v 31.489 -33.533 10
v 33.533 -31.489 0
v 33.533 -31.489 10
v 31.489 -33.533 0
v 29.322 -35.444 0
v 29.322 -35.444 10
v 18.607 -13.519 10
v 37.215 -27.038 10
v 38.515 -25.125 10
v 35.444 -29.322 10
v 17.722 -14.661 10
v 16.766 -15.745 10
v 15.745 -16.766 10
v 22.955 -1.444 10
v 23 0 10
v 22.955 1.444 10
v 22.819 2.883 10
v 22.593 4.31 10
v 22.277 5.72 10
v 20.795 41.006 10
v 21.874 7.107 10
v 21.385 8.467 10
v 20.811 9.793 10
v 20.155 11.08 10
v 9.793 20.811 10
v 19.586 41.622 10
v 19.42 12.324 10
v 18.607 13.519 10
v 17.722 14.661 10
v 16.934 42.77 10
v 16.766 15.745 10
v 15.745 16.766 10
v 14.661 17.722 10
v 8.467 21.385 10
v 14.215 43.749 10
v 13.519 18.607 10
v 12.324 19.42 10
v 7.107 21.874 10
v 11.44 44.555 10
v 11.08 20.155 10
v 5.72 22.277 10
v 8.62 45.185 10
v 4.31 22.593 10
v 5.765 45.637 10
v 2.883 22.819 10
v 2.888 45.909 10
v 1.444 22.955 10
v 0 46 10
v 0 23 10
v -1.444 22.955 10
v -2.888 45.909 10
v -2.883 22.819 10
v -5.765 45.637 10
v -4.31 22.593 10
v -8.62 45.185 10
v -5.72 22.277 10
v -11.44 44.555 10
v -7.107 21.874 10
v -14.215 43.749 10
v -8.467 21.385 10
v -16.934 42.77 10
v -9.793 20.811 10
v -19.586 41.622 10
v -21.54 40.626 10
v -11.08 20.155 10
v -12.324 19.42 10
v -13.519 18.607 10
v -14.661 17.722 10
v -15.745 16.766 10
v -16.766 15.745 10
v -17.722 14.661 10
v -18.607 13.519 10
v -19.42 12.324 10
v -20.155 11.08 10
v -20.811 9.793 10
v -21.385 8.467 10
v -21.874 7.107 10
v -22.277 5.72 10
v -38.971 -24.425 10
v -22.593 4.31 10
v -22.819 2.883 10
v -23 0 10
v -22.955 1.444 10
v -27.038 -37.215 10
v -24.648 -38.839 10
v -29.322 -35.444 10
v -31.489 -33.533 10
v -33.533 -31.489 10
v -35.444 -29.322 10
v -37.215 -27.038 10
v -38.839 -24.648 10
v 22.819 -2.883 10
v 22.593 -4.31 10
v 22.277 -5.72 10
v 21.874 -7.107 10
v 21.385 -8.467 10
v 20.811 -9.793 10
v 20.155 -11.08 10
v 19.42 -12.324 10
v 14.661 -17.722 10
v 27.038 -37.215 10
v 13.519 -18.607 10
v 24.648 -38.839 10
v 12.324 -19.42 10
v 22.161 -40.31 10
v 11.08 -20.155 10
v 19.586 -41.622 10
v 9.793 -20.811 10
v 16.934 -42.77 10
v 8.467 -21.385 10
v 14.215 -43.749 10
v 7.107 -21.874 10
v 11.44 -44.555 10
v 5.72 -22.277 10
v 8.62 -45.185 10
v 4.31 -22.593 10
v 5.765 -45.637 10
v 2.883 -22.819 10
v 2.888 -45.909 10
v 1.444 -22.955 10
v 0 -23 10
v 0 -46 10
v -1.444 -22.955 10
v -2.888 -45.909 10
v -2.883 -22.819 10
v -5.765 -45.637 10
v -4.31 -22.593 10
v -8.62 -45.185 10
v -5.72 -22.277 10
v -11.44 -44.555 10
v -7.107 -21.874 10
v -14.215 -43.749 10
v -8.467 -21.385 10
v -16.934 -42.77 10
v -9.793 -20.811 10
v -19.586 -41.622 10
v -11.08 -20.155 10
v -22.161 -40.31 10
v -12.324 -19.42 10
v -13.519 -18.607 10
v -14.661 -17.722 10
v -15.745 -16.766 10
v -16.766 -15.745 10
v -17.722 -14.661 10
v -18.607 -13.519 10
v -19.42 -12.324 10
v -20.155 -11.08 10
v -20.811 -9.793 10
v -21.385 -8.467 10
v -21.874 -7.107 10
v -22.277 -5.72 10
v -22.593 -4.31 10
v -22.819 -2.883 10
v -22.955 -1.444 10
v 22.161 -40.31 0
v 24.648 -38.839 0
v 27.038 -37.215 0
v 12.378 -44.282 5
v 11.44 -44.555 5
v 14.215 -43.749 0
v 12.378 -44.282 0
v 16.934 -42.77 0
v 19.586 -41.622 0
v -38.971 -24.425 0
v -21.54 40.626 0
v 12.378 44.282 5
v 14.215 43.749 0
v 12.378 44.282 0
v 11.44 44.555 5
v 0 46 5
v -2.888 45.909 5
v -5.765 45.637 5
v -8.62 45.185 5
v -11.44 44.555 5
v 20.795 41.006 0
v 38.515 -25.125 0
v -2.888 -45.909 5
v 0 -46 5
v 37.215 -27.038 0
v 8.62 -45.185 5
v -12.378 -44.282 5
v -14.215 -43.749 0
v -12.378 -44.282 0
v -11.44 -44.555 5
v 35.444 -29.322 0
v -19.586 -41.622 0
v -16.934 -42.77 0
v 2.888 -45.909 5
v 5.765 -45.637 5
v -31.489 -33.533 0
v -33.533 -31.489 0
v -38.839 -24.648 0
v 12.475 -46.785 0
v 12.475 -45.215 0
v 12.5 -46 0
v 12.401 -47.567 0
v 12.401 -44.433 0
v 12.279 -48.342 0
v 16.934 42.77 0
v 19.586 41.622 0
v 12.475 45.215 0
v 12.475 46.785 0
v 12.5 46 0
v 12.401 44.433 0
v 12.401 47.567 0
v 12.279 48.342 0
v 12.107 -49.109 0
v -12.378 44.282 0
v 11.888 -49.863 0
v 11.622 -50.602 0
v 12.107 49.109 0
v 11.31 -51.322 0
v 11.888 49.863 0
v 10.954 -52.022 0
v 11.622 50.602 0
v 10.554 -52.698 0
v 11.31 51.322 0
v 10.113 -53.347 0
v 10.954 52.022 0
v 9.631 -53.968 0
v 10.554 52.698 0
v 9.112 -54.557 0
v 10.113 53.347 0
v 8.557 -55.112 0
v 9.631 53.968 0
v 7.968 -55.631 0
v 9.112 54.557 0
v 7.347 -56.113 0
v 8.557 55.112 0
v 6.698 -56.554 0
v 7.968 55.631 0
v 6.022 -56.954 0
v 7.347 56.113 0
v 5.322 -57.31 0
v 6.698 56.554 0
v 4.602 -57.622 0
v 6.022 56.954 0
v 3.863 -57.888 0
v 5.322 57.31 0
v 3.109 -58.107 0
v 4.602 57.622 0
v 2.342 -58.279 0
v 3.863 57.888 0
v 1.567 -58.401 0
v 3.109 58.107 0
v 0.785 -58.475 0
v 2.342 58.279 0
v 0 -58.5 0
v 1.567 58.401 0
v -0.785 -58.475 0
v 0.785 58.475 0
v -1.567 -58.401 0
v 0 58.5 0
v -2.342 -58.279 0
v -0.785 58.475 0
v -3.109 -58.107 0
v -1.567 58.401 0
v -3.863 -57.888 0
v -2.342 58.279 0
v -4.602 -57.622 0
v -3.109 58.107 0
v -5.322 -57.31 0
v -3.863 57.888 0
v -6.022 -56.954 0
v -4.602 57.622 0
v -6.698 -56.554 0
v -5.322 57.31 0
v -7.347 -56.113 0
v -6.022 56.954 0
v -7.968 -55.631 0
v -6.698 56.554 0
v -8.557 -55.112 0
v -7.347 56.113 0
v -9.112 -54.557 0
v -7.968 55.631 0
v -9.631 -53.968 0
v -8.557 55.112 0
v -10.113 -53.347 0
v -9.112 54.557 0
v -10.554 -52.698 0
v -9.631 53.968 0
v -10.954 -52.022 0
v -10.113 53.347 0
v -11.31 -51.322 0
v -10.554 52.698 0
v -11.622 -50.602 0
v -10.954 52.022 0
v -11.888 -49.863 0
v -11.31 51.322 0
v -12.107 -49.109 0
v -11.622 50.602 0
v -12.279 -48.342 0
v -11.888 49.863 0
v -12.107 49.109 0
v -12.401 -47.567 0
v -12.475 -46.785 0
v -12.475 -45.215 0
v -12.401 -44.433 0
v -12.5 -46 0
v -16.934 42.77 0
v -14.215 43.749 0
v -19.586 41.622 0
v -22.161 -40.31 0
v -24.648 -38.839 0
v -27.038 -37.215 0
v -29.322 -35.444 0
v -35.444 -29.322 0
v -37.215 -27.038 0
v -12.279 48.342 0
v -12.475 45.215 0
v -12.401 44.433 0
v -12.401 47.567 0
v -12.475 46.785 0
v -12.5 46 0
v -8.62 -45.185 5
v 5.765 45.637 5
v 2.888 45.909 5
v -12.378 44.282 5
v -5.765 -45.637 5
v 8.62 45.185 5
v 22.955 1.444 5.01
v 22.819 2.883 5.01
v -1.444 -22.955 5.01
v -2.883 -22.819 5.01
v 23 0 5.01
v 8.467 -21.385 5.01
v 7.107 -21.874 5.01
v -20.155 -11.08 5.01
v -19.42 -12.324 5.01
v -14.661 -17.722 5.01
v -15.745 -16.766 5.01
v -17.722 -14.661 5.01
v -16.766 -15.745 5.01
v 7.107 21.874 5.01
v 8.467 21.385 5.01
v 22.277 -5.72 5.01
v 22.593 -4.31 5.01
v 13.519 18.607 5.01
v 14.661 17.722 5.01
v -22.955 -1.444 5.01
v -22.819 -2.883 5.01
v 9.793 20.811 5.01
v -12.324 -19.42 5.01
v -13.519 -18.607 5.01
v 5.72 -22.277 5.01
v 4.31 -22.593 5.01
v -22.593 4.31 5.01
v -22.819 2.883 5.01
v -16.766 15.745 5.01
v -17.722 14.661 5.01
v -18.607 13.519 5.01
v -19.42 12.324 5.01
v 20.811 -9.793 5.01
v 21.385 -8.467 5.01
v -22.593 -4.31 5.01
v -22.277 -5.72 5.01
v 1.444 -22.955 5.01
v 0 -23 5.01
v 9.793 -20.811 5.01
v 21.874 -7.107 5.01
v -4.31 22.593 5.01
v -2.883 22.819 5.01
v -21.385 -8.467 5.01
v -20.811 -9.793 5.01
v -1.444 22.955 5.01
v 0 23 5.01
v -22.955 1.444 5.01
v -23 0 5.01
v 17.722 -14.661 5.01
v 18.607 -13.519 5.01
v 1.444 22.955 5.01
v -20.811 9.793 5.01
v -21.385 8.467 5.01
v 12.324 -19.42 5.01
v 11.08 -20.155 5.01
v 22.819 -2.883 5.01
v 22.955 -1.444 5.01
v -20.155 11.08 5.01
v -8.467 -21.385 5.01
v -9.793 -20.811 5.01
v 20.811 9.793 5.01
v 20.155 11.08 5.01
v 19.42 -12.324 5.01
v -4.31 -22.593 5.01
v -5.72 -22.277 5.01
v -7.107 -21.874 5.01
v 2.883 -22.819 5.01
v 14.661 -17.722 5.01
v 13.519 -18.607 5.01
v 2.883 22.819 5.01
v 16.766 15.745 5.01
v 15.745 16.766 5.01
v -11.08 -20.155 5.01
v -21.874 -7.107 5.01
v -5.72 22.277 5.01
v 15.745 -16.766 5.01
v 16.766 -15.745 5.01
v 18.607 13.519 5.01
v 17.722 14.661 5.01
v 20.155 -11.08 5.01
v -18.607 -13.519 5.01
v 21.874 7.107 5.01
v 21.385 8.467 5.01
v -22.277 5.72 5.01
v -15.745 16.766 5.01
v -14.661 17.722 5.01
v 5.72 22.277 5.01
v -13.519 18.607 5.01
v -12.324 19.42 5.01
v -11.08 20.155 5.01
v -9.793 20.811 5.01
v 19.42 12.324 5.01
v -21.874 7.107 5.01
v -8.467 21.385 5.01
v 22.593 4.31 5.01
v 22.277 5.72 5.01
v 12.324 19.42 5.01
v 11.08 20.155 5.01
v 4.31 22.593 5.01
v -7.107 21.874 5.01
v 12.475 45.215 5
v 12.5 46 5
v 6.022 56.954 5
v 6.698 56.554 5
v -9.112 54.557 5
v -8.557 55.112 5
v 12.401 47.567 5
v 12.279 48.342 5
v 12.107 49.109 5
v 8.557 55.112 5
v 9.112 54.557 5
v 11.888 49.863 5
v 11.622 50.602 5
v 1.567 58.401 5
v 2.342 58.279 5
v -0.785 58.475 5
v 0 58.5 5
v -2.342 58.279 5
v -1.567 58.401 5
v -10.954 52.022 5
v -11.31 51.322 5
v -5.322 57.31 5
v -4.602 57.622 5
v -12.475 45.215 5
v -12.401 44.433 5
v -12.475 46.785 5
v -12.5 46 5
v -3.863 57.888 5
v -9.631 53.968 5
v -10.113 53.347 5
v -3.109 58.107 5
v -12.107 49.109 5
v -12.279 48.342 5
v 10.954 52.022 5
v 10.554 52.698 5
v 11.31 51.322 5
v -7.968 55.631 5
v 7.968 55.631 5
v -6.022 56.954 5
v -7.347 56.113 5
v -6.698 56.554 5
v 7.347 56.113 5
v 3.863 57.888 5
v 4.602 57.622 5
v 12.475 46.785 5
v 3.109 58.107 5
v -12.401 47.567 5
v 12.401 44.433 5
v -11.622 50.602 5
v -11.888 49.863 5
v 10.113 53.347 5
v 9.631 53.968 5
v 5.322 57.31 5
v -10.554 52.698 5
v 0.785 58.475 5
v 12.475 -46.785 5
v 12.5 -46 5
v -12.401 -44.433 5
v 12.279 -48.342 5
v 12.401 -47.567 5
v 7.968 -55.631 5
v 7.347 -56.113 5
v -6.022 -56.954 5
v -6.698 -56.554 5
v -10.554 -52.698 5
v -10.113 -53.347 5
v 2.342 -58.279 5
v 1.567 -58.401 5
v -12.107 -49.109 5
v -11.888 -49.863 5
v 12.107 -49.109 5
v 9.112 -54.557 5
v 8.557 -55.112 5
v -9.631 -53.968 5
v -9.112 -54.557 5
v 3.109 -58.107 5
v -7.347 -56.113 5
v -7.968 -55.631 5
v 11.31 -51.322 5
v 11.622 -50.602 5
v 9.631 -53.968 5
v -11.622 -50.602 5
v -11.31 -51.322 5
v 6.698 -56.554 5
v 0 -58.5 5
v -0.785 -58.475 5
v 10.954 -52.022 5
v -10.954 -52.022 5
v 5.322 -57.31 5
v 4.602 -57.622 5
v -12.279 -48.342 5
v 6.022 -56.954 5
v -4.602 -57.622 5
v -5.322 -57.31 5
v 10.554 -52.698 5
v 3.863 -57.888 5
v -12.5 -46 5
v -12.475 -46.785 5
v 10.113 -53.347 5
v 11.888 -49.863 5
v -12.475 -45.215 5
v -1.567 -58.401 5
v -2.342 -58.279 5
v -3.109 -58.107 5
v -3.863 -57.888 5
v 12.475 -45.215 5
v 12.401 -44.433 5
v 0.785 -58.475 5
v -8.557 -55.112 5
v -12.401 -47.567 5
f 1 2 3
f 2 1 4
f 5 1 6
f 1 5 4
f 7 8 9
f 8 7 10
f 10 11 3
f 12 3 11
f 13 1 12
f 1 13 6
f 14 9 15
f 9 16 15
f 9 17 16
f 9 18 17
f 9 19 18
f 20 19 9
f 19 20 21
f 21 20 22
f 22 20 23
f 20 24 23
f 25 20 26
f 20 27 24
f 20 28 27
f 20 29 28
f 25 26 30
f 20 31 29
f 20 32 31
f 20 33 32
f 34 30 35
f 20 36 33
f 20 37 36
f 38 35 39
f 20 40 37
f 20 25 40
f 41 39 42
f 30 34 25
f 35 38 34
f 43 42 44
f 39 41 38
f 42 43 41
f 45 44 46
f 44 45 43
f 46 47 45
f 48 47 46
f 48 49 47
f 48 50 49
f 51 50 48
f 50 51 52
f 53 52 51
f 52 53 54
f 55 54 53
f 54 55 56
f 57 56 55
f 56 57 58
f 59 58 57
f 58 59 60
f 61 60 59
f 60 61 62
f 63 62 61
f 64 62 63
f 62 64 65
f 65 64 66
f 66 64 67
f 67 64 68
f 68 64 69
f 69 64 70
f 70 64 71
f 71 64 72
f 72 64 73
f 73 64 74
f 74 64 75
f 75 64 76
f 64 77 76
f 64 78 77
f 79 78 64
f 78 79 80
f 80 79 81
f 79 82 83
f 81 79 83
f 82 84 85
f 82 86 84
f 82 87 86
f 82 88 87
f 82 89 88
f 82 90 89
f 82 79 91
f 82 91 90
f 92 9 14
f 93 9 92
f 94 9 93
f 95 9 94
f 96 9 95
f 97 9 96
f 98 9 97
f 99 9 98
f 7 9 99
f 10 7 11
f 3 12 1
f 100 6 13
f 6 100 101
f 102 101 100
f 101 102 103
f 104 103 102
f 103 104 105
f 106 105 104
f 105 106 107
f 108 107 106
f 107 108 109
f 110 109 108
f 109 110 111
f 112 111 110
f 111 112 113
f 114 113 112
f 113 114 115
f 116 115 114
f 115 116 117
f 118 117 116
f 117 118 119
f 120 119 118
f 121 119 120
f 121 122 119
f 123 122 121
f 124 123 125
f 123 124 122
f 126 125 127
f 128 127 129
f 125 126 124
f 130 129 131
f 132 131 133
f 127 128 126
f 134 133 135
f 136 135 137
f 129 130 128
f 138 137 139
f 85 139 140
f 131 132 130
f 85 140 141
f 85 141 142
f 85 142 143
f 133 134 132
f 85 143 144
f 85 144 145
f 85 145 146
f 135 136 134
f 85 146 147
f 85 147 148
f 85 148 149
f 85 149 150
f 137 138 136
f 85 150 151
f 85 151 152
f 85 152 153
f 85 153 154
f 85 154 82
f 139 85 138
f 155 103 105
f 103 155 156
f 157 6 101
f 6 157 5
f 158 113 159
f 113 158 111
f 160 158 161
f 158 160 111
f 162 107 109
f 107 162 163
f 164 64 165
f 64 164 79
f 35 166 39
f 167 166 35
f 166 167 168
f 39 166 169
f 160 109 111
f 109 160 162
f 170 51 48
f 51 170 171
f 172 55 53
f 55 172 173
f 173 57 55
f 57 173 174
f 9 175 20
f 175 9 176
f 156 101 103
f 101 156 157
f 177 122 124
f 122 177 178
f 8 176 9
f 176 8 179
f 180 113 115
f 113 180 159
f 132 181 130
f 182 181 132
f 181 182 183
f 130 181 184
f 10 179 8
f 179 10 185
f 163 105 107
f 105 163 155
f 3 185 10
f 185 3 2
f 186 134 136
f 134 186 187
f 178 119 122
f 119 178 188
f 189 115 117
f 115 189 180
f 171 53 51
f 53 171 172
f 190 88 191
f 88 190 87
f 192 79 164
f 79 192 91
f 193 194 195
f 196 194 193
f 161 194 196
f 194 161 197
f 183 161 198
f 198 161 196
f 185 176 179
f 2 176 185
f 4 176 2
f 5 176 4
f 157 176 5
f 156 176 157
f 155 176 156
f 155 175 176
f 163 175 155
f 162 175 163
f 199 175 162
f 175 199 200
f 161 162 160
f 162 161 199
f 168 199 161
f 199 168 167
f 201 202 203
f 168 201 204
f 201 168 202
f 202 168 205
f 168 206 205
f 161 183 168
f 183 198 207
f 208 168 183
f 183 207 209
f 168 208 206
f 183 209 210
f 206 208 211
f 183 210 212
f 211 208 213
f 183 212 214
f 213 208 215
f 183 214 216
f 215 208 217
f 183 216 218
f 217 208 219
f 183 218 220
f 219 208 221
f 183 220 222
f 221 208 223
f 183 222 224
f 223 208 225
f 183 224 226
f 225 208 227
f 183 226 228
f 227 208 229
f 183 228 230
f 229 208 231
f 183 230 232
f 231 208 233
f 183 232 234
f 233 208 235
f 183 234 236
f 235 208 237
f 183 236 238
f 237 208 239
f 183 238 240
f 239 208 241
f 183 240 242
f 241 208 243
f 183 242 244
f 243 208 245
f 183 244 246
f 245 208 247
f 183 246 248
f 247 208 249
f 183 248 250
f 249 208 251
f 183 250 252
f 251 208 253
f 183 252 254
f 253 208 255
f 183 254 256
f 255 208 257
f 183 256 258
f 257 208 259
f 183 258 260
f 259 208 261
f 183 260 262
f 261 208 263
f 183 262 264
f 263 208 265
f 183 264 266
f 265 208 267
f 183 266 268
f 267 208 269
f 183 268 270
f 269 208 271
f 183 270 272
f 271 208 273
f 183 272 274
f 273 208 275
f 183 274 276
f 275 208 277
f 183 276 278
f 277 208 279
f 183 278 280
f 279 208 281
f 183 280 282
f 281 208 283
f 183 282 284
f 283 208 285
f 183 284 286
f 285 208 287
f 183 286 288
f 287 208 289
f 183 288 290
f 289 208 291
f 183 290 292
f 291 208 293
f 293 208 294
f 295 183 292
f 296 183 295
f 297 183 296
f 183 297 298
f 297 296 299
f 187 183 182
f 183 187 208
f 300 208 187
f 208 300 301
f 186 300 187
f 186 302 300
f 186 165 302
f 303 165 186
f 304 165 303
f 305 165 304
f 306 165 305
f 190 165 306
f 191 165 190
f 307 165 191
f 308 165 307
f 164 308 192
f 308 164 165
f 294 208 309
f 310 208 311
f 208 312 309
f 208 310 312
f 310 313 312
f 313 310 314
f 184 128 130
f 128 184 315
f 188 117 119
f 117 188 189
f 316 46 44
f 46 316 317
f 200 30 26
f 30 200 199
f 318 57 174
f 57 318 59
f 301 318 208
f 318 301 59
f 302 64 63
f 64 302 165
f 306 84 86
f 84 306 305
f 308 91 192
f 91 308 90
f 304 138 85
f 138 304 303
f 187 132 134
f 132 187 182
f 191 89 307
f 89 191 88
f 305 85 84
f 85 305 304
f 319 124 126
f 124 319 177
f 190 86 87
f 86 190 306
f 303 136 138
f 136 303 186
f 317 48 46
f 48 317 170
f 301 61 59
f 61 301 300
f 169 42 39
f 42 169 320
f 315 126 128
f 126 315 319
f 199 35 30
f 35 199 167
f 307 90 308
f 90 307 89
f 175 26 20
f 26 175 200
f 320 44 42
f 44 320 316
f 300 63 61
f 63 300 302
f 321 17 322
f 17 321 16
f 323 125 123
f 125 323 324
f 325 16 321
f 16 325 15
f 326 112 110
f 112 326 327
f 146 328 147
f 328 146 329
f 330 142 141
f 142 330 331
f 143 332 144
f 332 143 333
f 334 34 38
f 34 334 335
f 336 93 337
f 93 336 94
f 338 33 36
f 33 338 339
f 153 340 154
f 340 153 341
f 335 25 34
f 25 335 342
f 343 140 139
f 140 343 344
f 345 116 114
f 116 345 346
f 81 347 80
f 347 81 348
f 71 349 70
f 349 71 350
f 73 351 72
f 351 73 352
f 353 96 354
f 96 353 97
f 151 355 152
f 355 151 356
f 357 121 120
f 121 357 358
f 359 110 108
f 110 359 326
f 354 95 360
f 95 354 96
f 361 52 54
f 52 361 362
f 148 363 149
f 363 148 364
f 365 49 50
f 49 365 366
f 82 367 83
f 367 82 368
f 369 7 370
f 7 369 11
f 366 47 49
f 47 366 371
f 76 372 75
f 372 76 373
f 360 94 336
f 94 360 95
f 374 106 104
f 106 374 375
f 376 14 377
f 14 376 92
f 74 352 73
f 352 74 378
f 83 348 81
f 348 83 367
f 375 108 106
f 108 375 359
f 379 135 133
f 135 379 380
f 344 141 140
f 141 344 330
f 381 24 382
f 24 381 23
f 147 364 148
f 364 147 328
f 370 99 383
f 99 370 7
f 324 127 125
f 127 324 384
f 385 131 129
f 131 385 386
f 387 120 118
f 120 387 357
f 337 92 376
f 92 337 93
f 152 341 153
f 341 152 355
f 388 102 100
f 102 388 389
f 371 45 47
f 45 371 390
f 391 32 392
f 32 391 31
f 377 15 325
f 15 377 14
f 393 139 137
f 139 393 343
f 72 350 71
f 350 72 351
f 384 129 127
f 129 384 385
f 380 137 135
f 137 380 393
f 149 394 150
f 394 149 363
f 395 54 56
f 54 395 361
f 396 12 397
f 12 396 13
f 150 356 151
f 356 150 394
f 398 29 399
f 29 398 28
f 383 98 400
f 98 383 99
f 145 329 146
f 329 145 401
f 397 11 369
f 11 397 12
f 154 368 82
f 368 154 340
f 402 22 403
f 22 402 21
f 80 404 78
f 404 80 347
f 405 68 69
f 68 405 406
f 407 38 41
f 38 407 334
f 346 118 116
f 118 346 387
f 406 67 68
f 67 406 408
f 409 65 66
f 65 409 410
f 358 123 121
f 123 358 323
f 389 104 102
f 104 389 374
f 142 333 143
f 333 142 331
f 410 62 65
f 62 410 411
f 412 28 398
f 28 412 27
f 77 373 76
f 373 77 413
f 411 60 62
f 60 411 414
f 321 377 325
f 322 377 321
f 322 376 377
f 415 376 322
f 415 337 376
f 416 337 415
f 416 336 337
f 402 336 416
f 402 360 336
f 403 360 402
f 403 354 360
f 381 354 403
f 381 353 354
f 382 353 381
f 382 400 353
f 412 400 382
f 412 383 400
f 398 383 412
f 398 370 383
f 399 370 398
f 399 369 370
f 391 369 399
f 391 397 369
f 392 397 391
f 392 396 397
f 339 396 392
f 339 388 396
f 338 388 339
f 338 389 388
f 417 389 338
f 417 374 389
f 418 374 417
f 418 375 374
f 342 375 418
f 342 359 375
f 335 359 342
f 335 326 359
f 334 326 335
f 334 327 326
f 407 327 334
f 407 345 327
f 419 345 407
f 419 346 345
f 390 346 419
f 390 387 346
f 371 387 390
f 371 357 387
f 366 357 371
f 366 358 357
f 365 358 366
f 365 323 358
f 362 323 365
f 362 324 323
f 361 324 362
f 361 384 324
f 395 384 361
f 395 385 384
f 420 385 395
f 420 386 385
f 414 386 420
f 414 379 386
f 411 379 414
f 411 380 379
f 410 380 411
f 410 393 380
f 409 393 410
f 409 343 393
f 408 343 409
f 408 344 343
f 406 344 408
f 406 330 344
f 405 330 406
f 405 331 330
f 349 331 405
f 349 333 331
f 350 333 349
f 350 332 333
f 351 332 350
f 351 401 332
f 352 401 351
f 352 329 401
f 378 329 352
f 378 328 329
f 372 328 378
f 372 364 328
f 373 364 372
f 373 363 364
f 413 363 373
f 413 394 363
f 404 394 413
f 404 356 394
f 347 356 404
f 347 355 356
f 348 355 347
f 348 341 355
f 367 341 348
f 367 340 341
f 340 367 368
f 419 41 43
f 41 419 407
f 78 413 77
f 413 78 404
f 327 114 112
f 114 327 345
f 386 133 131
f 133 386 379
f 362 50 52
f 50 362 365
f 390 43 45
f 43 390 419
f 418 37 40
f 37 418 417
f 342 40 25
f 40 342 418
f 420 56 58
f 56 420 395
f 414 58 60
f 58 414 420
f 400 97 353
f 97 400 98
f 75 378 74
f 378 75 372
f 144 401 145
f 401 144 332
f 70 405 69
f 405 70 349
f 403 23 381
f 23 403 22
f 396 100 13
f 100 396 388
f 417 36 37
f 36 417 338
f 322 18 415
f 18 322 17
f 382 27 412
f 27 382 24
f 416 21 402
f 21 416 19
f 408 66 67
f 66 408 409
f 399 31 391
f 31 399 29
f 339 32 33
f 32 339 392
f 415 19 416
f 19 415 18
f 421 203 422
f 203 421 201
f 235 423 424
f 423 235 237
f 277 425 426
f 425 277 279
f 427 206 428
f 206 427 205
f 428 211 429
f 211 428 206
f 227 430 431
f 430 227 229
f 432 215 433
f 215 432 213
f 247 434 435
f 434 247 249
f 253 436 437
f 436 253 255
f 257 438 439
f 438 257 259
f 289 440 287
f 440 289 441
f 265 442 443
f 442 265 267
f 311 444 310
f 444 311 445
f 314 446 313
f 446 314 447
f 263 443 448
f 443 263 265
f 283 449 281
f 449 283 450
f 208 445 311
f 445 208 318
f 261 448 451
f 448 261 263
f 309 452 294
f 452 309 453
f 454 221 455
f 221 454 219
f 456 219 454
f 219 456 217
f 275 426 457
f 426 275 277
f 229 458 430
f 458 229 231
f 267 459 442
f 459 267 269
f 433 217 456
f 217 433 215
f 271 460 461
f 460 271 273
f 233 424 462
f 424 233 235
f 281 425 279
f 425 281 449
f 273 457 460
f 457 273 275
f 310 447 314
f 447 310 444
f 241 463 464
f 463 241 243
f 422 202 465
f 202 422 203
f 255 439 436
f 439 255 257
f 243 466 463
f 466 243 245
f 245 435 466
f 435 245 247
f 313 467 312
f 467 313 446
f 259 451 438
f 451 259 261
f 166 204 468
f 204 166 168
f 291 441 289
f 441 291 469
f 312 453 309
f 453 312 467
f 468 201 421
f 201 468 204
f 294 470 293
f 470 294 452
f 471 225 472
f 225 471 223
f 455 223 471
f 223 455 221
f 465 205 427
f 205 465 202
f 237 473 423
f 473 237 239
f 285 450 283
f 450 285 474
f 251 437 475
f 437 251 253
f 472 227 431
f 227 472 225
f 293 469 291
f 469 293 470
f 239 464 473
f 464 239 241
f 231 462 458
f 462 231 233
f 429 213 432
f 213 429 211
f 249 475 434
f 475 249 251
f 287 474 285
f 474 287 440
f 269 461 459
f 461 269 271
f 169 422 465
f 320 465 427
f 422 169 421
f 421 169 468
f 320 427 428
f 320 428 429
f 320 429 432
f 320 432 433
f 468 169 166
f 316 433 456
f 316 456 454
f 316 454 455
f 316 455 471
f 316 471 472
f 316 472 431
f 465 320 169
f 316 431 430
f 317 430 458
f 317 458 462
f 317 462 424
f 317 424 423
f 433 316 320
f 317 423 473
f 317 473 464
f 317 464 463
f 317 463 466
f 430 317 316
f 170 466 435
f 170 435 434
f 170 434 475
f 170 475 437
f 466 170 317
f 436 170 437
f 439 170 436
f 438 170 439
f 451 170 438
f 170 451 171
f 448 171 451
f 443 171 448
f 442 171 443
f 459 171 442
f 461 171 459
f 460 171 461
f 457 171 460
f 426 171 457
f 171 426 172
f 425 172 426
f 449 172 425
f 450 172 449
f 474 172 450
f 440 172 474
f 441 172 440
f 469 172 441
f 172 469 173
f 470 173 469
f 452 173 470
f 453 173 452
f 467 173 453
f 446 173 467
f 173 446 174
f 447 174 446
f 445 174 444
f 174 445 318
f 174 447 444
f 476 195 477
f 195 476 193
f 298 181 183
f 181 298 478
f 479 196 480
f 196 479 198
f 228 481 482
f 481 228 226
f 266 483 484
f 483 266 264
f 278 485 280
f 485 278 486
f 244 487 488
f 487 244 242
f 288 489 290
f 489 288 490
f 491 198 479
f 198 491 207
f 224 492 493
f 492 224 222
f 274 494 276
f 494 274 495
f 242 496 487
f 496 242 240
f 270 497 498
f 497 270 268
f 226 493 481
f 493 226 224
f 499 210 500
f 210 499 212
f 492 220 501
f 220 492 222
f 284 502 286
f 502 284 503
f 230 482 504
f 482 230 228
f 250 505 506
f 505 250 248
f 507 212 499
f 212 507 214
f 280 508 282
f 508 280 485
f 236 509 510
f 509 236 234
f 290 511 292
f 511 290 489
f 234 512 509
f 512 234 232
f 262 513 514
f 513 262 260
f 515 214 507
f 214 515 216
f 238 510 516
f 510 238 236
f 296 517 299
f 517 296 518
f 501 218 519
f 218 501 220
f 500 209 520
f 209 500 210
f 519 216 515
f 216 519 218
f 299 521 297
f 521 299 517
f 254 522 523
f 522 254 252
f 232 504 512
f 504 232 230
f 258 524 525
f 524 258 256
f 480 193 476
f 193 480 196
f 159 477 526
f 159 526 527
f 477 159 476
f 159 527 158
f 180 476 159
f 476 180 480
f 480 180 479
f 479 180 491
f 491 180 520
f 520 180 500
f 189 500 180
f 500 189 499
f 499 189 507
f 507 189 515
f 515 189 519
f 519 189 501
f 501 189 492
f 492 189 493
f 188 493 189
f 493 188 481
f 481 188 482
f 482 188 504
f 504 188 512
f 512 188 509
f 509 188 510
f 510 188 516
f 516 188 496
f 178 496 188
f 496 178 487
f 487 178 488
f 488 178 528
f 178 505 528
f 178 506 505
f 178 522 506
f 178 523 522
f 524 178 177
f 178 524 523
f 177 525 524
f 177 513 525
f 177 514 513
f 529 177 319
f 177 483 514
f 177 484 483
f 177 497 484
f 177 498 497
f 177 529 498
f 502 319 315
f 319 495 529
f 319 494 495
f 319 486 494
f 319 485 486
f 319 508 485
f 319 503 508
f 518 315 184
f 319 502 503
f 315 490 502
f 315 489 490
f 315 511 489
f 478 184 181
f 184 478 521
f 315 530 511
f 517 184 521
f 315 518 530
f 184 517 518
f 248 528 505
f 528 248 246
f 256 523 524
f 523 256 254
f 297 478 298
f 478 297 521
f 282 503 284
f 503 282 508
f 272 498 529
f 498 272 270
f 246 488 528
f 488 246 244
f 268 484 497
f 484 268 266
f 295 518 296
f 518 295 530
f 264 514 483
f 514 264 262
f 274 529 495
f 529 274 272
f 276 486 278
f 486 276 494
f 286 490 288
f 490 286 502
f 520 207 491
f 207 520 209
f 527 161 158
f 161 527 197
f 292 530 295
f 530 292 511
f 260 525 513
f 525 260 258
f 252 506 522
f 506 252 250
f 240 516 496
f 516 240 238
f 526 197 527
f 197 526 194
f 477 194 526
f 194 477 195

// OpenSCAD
$fn=100;

outer_circle=92;
inner_circle=46;

notch=25;

height=10;

cutoff_width=40;

difference(){
linear_extrude(height=height) {
difference(){
  circle(d=outer_circle);

  translate([cutoff_width, -outer_circle/3, 0])
    rotate([0, 0, 15])
    polygon([[0,0], [0,outer_circle], [cutoff_width, outer_circle], [cutoff_width, 0]]);

  translate([-cutoff_width*2, -outer_circle/4, 0])
    rotate([0, 0, 345])
    polygon([[0,0], [0,outer_circle], [cutoff_width, outer_circle], [cutoff_width, 0]]);
}
}

translate([0, 0, height/2+0.01])
linear_extrude(height=height/2) {
  circle(d=inner_circle);
}
}

translate([0, outer_circle/2, 0])
  linear_extrude(height=height/2) {
    circle(d=notch);
  }

translate([0, -outer_circle/2, 0])
  linear_extrude(height=height/2) {
    circle(d=notch);
  }
